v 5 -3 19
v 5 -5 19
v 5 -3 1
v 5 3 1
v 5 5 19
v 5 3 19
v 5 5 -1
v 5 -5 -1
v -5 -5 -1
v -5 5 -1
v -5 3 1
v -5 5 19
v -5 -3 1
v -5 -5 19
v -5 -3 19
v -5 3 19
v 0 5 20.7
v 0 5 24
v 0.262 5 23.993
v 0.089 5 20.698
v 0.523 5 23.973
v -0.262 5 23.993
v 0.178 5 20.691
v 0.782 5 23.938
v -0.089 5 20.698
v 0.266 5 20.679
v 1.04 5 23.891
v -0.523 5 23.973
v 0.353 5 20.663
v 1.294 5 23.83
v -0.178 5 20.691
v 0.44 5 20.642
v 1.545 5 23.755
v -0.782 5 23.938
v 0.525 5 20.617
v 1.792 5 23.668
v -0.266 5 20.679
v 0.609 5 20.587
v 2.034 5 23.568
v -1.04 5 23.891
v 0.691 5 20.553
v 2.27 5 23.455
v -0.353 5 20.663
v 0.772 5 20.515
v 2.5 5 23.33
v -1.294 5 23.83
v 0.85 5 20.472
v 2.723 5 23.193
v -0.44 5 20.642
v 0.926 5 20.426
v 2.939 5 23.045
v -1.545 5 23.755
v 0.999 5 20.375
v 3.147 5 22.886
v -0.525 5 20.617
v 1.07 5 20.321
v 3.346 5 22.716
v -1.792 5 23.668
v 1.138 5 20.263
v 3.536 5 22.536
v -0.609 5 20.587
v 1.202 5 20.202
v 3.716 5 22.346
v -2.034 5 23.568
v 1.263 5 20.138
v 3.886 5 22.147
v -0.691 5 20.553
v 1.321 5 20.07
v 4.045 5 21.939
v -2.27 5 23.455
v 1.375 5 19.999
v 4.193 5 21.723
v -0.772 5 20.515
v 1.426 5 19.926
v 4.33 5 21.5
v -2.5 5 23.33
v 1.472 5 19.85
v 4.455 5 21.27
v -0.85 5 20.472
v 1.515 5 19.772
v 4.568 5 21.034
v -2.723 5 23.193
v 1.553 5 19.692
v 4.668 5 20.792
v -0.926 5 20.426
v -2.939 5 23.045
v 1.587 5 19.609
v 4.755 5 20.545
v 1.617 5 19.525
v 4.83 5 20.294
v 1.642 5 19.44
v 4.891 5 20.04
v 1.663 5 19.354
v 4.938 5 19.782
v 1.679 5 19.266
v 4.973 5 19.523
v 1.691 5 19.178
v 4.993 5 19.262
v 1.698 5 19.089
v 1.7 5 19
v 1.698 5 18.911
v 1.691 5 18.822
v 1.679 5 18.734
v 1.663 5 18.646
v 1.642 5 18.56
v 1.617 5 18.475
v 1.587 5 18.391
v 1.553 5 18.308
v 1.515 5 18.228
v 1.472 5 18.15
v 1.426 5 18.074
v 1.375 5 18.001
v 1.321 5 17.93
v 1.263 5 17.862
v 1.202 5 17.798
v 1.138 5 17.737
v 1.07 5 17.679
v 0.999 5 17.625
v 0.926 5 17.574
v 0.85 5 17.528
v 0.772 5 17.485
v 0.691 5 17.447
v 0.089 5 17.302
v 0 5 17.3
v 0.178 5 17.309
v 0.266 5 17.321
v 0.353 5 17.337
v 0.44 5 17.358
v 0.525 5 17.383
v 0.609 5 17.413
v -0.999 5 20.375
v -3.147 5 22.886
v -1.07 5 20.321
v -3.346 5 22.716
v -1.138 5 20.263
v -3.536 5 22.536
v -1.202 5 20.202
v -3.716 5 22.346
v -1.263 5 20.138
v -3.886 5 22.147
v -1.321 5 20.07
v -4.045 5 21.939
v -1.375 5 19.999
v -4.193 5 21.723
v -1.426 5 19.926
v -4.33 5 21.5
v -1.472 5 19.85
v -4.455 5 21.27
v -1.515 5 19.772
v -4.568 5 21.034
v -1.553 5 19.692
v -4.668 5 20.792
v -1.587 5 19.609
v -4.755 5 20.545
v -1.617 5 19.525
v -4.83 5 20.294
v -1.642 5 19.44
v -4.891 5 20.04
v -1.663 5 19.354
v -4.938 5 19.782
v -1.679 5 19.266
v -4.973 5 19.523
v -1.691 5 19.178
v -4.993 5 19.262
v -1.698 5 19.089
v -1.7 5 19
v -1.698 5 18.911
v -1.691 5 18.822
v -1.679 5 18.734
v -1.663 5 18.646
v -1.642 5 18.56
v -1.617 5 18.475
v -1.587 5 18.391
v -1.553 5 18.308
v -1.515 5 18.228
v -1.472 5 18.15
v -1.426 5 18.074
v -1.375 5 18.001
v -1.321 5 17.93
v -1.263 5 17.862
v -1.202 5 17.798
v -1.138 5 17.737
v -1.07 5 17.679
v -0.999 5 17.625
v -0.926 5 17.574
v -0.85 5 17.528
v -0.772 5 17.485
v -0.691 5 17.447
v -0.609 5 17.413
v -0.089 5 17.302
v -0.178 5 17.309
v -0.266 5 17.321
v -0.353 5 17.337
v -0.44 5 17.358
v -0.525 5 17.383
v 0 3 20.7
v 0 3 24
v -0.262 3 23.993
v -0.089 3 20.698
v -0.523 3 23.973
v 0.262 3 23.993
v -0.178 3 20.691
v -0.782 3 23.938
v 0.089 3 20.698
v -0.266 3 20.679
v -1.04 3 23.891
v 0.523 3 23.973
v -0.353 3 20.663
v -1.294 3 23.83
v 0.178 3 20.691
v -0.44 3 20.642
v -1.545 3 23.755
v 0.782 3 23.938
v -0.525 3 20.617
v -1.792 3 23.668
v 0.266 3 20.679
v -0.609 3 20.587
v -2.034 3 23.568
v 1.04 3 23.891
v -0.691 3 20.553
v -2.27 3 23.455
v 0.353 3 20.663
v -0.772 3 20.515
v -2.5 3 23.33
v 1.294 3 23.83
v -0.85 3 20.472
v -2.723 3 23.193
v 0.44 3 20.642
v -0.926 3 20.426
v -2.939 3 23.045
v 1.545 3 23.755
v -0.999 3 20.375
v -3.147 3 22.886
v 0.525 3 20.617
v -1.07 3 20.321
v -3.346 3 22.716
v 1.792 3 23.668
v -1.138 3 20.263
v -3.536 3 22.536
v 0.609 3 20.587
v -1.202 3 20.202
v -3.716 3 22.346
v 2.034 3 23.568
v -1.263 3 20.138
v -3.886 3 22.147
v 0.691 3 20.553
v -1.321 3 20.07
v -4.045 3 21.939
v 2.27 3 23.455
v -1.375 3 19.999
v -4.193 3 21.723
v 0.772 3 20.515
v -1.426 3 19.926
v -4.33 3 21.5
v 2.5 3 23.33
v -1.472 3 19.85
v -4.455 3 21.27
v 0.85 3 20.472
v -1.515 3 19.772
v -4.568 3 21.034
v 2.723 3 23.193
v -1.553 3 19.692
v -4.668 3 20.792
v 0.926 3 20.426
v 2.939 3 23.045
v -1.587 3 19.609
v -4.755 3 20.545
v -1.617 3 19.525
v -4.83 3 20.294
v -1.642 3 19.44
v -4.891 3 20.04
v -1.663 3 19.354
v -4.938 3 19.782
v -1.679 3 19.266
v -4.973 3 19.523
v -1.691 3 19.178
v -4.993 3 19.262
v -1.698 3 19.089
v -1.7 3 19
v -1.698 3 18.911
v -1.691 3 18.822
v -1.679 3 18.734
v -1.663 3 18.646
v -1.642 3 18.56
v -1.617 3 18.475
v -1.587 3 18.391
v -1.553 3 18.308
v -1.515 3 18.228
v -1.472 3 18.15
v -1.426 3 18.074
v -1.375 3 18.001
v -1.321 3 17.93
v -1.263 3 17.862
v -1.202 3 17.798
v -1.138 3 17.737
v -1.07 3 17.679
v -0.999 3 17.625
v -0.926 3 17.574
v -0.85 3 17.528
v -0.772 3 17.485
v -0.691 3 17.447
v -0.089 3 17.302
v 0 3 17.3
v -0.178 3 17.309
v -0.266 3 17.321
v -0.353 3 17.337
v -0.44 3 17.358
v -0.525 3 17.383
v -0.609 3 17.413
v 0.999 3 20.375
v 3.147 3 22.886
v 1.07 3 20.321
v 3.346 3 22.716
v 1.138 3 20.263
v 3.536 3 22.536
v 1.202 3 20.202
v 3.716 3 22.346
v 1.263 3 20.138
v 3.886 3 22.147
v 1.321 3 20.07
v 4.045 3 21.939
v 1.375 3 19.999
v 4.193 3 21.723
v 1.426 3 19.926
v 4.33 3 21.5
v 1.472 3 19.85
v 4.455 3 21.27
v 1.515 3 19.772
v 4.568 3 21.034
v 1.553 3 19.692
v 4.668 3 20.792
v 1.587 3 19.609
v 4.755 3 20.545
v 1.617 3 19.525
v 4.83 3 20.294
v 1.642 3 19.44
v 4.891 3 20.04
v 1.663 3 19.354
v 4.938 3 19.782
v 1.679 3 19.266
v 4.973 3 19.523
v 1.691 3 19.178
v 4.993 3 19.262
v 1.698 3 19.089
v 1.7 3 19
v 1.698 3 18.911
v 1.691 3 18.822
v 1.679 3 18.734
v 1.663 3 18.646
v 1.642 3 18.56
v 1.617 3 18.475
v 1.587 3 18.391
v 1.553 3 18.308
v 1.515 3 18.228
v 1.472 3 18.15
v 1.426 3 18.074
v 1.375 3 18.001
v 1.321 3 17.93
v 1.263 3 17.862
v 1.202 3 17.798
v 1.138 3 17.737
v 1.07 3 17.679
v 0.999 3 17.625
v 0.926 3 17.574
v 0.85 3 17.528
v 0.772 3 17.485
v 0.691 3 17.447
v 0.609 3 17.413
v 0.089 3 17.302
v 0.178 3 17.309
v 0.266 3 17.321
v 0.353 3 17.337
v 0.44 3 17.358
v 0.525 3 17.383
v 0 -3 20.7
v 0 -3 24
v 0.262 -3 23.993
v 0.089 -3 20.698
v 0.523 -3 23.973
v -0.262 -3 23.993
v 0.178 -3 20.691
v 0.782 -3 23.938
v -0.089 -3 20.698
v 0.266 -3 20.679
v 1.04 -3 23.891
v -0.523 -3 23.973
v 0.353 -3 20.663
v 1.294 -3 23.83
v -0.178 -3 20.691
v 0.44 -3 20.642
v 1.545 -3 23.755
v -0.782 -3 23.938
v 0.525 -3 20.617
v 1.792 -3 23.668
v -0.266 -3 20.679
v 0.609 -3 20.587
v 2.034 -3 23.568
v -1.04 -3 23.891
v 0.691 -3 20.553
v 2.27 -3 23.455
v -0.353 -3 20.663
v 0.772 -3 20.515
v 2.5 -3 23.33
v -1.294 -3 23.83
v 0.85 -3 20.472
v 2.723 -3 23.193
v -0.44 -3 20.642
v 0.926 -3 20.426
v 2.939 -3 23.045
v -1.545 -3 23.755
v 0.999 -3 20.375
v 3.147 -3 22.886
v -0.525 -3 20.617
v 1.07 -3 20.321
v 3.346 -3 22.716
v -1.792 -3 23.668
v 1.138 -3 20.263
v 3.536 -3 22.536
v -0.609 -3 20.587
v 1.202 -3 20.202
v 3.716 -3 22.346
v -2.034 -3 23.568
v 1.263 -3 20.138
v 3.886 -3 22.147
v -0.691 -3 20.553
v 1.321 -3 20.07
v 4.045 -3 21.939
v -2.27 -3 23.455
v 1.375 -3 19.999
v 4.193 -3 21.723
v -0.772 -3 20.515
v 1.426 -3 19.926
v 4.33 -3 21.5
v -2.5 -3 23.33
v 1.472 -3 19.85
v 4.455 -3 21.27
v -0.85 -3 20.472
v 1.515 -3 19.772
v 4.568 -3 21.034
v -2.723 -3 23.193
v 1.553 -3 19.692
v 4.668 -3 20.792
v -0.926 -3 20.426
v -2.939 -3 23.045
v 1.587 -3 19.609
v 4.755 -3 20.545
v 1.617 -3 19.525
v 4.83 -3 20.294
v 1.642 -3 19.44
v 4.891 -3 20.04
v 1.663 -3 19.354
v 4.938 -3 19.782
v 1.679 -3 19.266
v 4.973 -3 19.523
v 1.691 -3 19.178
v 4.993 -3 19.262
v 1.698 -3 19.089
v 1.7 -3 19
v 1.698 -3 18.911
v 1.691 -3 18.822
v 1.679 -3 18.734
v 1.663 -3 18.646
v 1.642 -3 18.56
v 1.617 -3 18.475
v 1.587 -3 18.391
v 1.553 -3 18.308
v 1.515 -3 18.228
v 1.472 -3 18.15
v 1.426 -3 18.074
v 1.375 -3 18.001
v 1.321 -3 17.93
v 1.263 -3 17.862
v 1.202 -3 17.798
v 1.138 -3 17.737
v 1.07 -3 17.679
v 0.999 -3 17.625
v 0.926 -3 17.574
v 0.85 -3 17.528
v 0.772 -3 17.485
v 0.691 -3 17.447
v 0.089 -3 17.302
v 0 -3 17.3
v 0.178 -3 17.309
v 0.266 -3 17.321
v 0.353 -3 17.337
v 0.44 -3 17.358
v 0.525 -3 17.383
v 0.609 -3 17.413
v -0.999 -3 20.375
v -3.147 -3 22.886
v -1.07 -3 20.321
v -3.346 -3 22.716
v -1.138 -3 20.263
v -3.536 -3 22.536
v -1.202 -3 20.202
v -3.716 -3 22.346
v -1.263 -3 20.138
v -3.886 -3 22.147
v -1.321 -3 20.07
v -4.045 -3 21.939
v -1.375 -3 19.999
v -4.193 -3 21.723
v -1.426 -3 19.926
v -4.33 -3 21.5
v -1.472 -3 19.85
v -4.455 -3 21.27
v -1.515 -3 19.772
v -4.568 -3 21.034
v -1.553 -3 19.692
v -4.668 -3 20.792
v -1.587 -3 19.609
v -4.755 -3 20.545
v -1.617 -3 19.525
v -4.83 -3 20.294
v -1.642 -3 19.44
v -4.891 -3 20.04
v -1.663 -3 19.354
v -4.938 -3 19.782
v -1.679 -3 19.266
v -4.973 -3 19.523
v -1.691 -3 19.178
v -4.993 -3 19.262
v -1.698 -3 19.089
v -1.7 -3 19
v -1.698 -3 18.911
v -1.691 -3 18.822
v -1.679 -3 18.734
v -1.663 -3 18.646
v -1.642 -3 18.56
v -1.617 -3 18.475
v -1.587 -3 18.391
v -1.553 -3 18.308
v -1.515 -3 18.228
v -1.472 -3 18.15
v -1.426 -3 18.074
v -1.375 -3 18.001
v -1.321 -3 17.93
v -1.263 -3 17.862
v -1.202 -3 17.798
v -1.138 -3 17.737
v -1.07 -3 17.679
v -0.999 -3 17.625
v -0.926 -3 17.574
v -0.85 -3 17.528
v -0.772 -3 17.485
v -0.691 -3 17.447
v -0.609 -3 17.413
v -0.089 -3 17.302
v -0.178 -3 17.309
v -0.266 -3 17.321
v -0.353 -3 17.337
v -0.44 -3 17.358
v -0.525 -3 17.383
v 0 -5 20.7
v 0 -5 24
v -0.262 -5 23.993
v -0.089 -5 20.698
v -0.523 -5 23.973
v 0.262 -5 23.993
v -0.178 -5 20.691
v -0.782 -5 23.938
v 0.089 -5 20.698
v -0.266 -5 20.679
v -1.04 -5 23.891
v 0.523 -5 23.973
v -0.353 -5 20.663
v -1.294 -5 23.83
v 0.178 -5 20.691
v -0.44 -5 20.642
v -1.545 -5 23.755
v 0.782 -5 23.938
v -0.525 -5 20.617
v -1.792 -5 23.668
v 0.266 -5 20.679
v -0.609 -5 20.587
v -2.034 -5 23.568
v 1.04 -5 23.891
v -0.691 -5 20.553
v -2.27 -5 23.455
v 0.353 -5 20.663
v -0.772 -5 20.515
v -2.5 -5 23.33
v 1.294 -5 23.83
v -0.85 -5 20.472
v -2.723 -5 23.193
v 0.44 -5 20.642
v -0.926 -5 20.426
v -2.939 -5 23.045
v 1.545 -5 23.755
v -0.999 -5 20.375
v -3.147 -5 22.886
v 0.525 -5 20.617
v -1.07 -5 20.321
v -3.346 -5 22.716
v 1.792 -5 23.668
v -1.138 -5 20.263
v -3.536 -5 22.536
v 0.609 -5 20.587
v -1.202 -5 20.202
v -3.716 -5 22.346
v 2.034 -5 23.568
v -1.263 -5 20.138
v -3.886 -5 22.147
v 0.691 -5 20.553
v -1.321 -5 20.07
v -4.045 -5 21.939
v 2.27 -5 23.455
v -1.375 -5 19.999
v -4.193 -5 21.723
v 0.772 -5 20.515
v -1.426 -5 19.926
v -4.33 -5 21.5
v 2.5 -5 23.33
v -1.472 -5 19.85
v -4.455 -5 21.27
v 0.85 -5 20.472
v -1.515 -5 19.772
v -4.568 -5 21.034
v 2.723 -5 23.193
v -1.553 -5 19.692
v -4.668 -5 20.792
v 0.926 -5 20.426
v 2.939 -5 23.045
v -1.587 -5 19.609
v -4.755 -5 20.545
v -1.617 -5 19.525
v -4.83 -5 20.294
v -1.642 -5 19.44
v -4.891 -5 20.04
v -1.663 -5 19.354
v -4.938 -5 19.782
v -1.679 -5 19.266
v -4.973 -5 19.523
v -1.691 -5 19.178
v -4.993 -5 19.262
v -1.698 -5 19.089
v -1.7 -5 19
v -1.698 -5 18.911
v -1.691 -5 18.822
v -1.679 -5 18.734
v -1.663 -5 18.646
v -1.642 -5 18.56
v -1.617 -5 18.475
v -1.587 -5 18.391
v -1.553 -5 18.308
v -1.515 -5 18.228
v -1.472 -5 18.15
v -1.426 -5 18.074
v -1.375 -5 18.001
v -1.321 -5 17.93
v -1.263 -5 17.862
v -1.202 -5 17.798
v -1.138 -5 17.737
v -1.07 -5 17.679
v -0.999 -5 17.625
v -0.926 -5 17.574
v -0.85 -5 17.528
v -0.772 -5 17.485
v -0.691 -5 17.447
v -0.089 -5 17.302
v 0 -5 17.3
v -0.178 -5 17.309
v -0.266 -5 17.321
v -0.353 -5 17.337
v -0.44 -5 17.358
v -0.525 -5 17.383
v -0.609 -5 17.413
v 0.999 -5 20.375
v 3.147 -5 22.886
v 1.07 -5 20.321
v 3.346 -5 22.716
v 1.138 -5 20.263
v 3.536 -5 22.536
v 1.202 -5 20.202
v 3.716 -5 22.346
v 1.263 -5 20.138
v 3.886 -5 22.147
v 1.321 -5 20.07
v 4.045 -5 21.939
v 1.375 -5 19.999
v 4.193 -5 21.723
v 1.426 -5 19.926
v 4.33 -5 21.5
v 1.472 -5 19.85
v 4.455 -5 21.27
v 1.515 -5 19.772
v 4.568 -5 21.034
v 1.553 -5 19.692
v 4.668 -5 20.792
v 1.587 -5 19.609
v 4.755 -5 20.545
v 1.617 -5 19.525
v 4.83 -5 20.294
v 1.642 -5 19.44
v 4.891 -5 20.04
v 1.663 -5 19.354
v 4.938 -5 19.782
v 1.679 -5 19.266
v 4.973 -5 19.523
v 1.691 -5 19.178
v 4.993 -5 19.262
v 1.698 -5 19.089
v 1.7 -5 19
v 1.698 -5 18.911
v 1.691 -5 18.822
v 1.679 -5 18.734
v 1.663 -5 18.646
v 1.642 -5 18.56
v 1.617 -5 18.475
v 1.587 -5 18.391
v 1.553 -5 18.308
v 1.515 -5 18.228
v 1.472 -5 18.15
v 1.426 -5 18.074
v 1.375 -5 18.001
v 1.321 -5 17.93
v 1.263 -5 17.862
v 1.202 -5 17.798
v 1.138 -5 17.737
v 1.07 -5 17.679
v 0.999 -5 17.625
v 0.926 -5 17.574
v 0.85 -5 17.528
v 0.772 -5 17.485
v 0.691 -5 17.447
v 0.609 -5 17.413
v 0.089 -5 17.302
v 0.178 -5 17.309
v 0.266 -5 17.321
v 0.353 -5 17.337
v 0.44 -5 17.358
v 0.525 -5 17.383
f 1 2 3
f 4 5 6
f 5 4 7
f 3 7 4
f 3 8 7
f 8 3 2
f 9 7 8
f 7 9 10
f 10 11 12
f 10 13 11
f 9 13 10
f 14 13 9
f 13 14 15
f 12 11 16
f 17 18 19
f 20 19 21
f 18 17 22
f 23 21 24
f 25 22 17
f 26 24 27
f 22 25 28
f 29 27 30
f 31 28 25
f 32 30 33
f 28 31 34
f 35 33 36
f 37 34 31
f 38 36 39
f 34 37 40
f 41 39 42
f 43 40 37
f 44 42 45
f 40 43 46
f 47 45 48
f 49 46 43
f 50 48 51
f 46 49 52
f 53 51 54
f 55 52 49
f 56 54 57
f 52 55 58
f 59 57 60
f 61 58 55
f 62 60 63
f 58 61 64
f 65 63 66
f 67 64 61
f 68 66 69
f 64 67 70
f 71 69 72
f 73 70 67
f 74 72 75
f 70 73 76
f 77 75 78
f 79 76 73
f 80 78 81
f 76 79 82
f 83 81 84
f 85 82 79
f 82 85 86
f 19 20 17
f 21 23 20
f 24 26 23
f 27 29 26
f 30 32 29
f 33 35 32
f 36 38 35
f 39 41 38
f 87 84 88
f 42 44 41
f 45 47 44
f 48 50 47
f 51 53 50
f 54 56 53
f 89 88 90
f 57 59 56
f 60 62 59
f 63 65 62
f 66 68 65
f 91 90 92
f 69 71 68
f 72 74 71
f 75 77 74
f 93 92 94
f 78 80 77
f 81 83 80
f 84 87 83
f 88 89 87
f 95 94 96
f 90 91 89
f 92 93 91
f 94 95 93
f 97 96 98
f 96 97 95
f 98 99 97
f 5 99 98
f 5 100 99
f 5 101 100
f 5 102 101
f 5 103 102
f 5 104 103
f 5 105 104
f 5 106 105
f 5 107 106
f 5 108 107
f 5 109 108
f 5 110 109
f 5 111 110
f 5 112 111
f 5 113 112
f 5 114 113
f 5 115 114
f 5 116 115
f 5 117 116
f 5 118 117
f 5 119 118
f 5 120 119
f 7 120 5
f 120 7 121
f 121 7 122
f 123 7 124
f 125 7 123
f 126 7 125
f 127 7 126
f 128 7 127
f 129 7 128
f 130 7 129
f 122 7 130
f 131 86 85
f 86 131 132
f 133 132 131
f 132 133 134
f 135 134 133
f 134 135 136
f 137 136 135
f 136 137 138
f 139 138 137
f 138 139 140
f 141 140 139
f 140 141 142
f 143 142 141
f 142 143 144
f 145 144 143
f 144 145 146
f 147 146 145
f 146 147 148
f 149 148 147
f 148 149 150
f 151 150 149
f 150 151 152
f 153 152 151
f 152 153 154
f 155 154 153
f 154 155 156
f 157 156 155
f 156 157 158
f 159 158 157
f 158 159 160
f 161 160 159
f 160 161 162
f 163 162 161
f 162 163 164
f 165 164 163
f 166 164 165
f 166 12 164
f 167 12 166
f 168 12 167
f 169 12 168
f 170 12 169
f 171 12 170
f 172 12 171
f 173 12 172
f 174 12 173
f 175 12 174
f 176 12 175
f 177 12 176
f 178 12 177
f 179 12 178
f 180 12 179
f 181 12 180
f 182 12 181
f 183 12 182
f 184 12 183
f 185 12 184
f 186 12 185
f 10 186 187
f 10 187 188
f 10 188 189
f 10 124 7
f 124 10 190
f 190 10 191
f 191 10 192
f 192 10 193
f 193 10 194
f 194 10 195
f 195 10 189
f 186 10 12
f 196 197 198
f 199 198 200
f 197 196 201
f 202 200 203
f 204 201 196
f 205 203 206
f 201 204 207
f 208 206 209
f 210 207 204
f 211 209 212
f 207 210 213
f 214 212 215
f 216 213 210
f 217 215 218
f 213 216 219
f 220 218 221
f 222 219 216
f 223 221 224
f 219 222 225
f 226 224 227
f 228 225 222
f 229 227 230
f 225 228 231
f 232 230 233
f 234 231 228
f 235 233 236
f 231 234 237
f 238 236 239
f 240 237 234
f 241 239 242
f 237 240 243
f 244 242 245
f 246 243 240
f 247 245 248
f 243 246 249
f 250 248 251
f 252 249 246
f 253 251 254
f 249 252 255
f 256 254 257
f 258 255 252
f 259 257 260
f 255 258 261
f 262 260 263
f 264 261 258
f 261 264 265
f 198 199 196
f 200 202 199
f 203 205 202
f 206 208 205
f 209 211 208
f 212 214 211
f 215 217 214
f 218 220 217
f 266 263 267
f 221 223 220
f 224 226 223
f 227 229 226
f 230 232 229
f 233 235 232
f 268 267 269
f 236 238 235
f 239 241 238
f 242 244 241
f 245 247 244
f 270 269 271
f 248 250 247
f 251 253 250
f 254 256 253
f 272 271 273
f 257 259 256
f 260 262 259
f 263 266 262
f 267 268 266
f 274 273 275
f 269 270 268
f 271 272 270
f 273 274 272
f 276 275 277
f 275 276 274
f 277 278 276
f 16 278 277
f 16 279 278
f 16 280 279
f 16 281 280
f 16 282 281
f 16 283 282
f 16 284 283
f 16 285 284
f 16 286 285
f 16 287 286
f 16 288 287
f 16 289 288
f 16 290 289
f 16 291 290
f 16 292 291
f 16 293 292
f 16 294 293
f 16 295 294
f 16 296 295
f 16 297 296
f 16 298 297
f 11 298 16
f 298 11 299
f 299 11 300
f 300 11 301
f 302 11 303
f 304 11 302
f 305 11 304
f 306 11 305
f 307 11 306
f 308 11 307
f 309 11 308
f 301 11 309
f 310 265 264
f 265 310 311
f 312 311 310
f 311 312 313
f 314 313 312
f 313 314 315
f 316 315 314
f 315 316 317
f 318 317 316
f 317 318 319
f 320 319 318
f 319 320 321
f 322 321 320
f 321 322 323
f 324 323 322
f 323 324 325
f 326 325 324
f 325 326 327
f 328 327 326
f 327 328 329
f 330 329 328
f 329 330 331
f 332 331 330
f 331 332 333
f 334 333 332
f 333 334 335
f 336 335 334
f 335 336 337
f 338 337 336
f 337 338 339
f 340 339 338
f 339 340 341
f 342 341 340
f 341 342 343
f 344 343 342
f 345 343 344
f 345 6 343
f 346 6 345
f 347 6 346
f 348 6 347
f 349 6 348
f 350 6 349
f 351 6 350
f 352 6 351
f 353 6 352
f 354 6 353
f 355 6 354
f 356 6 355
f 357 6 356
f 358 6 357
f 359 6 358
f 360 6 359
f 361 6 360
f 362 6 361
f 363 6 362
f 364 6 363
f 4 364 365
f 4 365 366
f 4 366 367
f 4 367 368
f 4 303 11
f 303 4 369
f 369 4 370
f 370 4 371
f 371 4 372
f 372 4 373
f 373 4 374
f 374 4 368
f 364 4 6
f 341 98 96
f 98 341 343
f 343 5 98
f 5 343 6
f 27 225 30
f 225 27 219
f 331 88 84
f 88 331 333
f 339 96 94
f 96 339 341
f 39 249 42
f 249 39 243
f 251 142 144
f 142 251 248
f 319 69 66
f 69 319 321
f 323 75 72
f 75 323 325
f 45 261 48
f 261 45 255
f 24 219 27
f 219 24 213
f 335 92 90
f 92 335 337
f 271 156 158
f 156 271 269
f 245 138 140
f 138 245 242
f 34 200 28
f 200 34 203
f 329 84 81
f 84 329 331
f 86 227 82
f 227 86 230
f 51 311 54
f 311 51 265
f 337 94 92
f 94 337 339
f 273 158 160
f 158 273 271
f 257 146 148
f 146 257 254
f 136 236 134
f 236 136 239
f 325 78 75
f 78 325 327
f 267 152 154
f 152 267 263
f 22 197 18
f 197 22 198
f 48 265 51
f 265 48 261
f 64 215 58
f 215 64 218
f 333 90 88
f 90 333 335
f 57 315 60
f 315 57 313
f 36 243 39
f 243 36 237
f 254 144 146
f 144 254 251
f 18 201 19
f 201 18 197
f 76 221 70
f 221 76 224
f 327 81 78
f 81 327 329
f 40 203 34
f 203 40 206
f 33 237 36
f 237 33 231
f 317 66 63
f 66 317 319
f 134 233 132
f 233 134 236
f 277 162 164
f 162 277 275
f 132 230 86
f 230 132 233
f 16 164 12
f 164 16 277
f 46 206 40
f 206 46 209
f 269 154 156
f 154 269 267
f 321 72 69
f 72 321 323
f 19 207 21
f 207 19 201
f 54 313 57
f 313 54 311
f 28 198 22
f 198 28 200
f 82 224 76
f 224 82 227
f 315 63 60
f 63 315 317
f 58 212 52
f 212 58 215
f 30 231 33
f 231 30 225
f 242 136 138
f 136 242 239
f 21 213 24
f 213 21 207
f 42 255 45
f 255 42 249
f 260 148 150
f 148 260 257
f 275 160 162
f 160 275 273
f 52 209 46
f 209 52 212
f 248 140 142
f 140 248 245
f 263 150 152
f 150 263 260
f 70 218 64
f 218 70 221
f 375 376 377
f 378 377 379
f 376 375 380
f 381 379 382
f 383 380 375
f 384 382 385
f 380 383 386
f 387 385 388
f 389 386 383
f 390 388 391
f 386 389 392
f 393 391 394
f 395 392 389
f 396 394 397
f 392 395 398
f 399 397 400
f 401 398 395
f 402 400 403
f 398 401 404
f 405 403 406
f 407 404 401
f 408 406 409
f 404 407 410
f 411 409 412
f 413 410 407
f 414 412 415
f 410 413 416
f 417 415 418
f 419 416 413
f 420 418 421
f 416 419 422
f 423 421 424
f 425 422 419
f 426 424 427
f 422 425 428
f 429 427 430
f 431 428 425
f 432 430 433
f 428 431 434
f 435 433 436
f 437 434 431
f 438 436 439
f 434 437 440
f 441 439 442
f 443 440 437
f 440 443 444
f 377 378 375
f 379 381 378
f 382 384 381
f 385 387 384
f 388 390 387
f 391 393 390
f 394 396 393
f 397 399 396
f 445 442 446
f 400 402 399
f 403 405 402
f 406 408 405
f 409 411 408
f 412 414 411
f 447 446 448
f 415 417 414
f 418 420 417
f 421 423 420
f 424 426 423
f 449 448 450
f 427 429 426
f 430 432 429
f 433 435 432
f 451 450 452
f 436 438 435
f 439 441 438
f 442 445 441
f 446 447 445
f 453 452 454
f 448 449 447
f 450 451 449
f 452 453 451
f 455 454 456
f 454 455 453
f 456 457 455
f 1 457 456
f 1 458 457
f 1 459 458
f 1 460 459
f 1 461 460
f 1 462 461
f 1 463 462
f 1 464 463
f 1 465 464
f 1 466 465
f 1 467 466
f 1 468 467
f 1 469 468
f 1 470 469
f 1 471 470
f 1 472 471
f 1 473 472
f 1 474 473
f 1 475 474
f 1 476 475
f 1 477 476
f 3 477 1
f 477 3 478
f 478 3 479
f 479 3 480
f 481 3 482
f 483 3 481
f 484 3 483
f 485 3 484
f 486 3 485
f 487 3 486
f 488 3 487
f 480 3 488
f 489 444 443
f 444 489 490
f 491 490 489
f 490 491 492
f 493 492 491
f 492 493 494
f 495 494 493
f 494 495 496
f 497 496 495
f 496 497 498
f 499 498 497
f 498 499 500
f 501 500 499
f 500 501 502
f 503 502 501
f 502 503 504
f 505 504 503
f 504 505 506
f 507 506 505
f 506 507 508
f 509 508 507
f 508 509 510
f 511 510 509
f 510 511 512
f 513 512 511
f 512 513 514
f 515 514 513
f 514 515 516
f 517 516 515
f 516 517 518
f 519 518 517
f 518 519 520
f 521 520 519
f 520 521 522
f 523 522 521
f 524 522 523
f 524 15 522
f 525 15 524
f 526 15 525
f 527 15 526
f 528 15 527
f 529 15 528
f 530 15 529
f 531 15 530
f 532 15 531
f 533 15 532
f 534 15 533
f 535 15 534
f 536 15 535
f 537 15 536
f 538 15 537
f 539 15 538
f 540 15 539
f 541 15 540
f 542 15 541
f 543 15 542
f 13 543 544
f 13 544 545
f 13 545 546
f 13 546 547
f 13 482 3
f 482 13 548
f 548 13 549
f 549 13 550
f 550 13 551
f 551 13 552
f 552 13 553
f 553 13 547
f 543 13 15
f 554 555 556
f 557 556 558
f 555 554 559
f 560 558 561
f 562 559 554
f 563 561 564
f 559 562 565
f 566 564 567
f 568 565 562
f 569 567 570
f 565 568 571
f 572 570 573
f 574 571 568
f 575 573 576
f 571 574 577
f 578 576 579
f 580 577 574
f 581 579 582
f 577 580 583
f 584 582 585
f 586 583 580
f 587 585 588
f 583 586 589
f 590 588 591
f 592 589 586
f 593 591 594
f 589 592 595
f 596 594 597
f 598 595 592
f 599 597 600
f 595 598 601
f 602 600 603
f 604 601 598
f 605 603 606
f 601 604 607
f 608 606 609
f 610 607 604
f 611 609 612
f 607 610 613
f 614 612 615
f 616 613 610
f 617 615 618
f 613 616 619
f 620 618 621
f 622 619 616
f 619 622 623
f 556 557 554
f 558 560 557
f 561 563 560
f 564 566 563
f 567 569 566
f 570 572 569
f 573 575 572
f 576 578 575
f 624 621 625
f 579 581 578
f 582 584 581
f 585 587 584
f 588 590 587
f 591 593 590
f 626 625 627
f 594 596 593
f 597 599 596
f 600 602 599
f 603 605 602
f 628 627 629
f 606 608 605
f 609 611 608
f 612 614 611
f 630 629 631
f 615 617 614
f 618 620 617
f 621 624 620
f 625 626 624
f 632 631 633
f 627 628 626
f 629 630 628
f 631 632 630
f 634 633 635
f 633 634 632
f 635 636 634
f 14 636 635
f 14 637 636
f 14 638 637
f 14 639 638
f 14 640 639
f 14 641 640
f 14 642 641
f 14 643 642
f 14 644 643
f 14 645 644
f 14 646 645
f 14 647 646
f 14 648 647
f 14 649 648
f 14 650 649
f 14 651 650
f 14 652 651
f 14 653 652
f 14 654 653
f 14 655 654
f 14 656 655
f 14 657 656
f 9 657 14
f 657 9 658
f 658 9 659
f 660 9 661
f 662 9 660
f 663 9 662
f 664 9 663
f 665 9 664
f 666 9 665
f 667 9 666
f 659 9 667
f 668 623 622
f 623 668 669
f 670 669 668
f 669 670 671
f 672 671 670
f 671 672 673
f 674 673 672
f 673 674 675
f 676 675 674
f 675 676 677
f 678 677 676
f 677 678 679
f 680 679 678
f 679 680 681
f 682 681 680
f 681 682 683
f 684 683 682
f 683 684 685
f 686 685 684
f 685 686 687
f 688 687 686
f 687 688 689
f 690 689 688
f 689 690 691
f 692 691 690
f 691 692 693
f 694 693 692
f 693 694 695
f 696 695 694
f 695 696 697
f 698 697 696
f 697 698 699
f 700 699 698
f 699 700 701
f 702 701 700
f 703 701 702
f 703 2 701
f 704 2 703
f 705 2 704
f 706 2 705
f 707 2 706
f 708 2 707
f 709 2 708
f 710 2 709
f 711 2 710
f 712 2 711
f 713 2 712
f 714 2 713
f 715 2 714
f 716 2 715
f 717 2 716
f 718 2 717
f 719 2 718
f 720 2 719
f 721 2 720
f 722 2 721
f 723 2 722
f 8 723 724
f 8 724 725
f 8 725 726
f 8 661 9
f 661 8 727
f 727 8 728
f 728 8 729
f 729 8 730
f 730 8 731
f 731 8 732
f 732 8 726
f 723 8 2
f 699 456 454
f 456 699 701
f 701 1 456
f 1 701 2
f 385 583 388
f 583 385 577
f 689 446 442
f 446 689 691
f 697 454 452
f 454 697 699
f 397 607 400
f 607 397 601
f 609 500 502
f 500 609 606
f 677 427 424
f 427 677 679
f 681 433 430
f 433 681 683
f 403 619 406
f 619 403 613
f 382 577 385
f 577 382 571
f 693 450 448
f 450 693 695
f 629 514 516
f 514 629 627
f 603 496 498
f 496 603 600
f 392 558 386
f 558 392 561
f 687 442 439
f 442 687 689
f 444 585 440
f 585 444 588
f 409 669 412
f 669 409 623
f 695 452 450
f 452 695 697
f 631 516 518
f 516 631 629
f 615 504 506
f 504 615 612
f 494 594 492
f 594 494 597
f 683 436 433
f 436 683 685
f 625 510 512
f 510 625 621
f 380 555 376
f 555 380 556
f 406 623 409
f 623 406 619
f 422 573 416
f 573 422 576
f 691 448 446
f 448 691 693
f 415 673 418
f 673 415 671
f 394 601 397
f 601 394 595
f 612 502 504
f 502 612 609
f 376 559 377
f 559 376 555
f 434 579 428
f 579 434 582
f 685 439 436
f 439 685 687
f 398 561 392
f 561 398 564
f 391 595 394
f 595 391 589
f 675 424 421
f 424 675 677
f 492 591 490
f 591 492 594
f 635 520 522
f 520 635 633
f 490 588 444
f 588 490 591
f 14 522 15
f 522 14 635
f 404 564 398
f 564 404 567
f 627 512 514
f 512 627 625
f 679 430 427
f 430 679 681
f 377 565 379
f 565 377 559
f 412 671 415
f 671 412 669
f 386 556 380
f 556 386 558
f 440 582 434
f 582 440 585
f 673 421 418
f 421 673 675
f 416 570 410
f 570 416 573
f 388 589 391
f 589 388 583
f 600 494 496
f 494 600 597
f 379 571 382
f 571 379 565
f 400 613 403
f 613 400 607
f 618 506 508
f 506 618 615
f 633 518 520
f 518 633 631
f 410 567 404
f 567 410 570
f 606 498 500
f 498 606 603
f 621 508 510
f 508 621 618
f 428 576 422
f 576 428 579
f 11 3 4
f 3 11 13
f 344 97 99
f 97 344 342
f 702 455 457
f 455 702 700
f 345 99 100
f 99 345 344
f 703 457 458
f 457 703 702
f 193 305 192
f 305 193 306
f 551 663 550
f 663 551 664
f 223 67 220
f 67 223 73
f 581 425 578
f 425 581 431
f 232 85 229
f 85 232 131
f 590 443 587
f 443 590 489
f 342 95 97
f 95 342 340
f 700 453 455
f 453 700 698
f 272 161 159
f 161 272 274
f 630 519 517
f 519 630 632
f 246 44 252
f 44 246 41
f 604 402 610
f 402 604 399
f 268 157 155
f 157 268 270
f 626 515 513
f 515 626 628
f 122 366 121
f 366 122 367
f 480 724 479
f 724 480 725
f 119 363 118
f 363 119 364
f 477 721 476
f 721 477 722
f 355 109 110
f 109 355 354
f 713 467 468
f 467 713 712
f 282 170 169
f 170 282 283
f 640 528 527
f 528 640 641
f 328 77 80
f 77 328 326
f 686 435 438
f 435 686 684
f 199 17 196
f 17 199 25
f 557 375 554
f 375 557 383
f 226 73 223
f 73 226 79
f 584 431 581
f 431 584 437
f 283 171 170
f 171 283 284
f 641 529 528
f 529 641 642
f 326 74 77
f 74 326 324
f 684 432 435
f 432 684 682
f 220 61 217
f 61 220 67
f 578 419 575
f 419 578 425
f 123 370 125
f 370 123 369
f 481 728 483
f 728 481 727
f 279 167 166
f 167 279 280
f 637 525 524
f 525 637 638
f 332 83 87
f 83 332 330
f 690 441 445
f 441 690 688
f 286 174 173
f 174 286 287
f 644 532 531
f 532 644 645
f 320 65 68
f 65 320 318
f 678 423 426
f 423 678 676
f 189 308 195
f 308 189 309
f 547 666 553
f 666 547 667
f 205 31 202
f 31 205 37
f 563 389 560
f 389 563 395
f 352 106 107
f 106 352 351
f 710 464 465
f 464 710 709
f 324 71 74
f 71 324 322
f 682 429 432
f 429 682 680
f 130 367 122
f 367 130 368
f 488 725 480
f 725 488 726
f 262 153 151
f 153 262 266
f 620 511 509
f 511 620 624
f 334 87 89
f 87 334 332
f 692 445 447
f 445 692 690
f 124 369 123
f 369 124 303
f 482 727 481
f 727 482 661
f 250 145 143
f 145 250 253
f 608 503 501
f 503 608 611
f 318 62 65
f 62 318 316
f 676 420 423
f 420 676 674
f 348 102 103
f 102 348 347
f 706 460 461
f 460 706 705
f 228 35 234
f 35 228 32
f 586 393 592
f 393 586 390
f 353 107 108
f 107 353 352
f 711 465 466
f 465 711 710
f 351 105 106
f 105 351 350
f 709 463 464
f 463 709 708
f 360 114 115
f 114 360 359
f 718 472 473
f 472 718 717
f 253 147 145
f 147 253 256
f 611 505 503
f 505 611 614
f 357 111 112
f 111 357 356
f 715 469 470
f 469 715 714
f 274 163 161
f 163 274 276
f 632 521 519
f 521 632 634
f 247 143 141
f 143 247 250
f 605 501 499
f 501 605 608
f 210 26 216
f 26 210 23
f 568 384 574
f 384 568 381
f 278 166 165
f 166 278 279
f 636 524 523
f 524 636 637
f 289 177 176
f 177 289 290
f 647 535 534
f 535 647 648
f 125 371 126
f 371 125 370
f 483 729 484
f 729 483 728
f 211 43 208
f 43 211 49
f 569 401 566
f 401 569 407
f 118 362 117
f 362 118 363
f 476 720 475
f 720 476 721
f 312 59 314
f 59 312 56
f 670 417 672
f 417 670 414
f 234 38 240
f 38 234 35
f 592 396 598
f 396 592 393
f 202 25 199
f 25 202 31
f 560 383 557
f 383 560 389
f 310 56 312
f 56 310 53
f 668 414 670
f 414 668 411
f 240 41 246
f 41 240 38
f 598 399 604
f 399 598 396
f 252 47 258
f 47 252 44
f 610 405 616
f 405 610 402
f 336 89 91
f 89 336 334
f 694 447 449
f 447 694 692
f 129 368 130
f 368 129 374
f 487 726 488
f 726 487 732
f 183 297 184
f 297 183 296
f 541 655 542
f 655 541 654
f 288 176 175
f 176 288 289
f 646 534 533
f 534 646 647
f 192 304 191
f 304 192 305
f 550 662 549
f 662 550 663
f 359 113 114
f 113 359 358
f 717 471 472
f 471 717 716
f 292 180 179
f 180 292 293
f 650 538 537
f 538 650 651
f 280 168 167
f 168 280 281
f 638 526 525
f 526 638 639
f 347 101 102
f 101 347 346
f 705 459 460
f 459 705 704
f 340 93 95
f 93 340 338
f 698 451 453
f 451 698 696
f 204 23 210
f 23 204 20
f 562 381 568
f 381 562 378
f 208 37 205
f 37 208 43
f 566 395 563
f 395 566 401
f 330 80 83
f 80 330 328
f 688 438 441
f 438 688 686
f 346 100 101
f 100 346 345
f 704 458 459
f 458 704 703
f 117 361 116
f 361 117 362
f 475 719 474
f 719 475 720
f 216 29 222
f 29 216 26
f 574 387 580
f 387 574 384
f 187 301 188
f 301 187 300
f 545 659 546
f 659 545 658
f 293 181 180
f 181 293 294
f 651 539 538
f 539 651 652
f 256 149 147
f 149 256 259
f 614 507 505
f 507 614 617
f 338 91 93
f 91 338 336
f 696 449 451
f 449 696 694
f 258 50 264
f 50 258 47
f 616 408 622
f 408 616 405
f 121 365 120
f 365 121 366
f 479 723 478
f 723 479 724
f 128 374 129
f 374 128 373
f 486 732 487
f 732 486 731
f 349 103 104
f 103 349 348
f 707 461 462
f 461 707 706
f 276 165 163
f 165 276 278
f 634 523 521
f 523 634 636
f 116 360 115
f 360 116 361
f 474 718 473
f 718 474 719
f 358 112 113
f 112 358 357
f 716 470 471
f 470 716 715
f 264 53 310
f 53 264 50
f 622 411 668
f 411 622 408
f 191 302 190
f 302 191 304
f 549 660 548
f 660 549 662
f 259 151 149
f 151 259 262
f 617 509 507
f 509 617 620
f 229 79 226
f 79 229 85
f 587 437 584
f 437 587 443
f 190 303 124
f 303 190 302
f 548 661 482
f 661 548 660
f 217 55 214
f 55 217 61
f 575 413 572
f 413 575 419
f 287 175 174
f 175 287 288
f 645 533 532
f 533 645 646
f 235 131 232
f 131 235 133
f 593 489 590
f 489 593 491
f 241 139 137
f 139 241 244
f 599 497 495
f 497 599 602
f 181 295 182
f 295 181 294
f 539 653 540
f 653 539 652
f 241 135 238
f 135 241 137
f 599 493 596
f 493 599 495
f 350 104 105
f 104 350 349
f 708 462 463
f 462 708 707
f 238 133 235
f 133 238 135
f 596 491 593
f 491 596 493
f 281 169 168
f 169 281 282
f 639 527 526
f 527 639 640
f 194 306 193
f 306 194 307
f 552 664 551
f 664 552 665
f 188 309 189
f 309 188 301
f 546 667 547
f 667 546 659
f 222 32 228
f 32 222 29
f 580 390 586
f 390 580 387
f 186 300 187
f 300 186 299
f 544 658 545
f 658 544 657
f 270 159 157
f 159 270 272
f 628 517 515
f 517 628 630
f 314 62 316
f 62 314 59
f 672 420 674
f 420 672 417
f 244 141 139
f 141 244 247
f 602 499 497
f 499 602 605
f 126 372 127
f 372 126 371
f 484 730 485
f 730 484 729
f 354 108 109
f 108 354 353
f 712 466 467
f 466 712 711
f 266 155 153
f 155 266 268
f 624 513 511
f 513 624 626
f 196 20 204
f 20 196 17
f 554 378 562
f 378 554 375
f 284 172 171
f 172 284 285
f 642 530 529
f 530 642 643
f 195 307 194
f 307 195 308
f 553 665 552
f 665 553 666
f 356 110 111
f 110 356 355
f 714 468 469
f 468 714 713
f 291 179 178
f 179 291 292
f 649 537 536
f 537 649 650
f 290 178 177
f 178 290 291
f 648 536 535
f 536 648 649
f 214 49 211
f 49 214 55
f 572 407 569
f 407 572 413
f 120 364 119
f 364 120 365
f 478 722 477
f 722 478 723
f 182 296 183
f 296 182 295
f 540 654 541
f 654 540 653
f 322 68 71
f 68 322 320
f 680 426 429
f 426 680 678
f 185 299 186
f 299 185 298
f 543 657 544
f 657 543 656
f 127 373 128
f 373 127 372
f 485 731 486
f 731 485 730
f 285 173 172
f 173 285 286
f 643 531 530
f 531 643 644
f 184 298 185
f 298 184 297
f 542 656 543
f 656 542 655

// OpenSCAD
// file: subpieces/wheel.scad
module components_weel_WireWeel(diam1, diam2, diam3, wheel_transition_border1, wheel_transition_border2, wheel_size, fn = 80) {
    wheel_flat_size = (wheel_size - wheel_transition_border1 - wheel_transition_border2);
    cylinder(h = wheel_transition_border1, r1= diam1 / 2, r2= diam2 / 2, $fn = fn);

    translate([0,0,wheel_transition_border1]) {
        cylinder(h = wheel_flat_size, r = diam2 / 2, $fn = fn);
        translate([0,0,wheel_flat_size]) {
            cylinder(h = wheel_transition_border2, r1= diam2 / 2, r2 = diam3 / 2, $fn = fn);
        }
    }
}
// main file
include <subpieces/wheel.scad>


module pulleyPiece() {

    pulley_thickness = 2;
    pulley_width = 10;
    pulley_height = 20;
    pulley_separation_distance = 10;

    puller_throws = 3.4;

    fn = 120;

    difference(){
        union() {
            cube([pulley_width, pulley_separation_distance, pulley_thickness], center=true);

            translate([0, pulley_separation_distance / 2 - pulley_thickness / 2, - pulley_thickness / 2 + pulley_height / 2]) {
                union() {
                    cube([pulley_width, pulley_thickness, pulley_height], center=true);
                    translate([0,0,pulley_height / 2])
                    rotate([90,0,0])
                    cylinder(h = pulley_thickness, d = pulley_width, center = true, $fn = fn);
                }
            }

            translate([0, - pulley_separation_distance / 2 + pulley_thickness / 2, - pulley_thickness / 2 + pulley_height / 2]) {
                union() {
                    cube([pulley_width, pulley_thickness, pulley_height], center=true);
                    translate([0,0,pulley_height / 2])
                    rotate([90,0,0])
                    cylinder(h = pulley_thickness, d = pulley_width, center = true, $fn = fn);
                }
            }
        }
        translate([0,0,pulley_height - pulley_thickness / 2])
        rotate([90,0,0])
        cylinder(h = pulley_separation_distance * 2, d = puller_throws, center = true, $fn = fn);
    }
}

pulleyPiece();
